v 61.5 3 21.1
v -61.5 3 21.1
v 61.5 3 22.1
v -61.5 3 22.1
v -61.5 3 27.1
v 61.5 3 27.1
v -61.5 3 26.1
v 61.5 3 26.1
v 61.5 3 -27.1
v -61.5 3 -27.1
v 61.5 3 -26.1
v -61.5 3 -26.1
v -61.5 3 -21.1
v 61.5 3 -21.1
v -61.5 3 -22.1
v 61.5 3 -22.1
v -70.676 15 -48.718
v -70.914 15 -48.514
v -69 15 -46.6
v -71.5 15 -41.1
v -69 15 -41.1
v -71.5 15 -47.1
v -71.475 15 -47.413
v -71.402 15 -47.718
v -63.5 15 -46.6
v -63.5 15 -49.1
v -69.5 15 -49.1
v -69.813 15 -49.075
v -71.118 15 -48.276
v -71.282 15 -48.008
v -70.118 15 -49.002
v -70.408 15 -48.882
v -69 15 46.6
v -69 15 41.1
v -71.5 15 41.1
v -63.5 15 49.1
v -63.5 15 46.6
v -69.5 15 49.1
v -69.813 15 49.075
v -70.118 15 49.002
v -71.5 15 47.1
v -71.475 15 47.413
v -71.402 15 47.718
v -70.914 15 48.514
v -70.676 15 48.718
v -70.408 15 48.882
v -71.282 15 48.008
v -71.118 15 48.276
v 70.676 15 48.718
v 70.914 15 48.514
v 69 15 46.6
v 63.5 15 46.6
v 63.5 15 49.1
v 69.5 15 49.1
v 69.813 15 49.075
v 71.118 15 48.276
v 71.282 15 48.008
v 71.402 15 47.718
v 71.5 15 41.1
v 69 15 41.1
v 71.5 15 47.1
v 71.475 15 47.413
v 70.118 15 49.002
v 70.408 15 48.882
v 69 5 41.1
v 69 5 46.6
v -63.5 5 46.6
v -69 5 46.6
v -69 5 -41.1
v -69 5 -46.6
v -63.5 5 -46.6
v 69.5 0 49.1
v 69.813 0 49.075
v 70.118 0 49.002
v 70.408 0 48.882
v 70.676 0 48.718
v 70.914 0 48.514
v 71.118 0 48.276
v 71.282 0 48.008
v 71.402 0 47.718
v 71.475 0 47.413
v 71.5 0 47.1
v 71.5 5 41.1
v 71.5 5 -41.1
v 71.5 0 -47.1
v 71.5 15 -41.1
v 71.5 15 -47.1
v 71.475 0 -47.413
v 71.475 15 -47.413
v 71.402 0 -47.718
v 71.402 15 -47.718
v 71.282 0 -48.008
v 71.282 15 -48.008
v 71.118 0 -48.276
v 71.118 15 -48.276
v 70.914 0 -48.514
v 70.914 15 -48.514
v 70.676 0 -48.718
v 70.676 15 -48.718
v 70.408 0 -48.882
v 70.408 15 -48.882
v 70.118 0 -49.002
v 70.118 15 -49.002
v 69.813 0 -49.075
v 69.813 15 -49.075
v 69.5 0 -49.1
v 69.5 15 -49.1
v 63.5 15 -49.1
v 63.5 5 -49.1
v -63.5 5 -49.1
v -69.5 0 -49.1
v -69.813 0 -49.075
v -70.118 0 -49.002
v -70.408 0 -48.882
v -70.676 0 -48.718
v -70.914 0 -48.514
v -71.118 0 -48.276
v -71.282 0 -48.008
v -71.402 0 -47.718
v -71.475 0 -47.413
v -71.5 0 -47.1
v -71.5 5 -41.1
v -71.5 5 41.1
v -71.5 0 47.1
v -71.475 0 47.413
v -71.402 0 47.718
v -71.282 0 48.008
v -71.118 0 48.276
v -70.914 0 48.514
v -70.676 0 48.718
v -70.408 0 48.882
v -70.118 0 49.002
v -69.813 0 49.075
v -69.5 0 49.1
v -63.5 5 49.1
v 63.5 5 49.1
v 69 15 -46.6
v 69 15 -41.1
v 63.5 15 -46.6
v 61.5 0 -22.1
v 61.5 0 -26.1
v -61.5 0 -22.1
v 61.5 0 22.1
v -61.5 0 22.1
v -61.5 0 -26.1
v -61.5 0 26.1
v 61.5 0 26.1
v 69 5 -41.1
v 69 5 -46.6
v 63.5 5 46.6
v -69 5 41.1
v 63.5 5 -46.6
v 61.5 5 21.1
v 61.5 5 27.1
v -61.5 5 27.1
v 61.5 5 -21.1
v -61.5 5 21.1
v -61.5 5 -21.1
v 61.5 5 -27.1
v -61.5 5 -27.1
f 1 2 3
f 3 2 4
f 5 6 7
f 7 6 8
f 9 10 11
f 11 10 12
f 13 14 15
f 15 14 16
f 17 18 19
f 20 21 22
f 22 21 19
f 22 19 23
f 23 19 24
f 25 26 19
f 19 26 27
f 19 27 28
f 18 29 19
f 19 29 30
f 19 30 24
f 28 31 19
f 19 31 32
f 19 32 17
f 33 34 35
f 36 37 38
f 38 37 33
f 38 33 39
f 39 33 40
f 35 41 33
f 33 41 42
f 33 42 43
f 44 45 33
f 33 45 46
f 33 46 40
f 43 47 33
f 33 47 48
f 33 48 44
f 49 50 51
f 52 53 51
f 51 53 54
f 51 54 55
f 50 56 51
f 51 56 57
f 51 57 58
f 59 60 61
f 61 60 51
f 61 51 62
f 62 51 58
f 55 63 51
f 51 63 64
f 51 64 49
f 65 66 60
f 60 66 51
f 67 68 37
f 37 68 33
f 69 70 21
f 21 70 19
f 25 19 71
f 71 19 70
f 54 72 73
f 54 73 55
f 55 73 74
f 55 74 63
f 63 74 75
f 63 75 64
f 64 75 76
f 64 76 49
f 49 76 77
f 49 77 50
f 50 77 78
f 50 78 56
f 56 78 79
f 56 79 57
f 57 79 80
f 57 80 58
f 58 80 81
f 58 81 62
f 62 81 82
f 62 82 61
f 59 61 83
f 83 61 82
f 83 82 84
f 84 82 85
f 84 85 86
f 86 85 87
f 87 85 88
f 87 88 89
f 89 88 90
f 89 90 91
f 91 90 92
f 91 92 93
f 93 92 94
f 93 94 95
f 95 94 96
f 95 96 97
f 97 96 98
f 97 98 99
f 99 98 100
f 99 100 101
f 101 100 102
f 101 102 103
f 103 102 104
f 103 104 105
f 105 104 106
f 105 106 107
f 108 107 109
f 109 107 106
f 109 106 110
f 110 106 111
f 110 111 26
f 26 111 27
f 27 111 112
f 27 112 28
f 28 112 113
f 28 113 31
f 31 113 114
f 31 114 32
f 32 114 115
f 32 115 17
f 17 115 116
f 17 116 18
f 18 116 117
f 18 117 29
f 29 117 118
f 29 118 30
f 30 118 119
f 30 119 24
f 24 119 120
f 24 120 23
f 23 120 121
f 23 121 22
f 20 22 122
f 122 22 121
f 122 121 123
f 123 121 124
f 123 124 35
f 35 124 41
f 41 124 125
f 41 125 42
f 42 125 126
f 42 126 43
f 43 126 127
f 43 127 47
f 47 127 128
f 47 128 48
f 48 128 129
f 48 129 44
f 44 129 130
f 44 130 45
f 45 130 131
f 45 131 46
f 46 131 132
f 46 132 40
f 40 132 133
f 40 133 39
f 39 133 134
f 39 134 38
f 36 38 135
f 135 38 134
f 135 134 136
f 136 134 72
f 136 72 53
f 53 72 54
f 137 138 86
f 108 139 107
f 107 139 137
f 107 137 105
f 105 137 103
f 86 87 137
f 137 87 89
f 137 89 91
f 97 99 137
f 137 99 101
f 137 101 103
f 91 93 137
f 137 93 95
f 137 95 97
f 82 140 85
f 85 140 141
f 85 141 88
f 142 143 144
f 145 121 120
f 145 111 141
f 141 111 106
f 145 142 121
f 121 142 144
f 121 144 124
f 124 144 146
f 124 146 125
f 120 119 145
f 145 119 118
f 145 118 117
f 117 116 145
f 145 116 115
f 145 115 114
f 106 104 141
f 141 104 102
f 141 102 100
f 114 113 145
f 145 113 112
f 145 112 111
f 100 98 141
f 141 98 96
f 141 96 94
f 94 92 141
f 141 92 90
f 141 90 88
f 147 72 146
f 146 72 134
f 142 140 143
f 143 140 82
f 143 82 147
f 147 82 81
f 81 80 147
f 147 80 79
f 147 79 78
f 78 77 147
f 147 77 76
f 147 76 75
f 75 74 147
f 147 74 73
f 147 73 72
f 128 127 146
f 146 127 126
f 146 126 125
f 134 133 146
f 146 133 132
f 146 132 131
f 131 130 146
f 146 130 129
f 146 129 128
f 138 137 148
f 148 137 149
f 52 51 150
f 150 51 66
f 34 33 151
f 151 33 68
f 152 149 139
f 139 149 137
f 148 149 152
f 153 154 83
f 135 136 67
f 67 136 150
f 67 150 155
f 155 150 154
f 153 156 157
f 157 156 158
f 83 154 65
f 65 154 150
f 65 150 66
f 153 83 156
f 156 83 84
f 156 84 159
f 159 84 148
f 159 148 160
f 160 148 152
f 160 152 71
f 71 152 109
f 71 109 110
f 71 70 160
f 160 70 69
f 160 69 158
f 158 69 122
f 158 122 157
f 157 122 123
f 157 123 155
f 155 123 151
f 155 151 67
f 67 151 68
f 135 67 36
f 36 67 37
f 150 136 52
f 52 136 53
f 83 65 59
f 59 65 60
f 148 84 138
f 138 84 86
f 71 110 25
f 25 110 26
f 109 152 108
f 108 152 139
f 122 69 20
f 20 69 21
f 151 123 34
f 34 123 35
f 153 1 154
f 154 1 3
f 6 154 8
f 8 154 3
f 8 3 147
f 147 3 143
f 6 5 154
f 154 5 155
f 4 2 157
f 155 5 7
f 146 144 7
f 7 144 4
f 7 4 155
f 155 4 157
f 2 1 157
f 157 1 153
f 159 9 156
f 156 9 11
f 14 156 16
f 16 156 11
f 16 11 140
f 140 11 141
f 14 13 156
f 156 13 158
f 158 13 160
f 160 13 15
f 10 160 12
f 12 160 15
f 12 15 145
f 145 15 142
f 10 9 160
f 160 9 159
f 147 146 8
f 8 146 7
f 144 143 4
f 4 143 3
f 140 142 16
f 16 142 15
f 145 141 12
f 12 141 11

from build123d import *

# Parameters (mm, degrees)
BOSS_EXTRUDE1_DEPTH = 15
SKETCH2_W           = 138
SKETCH2_H           = 93.2
CUT_EXTRUDE1_DEPTH  = 10
SKETCH3_W           = 2.5
SKETCH3_H           = 82.2
SKETCH3_W_2         = 127
SKETCH3_H_2         = 2.5
CUT_EXTRUDE2_DEPTH  = 10
SKETCH7_W           = 123
SKETCH7_H           = 6
CUT_EXTRUDE6_DEPTH  = 2
SKETCH8_W           = 123
SKETCH8_H           = 4
CUT_EXTRUDE7_DEPTH  = 3


with BuildPart() as part:
    # Sketch1 → Boss-Extrude1 (new body)
    with BuildSketch(Plane(origin=(0, 0, 0), x_dir=(1, 0, 0), z_dir=(0, 1, 0))):
        with BuildLine():
            Line((-69.5, -49.1), (69.5, -49.1))
            ThreePointArc((69.5, -49.1), (70.914213562, -48.514213562), (71.5, -47.1))
            Line((71.5, -47.1), (71.5, 47.1))
            ThreePointArc((71.5, 47.1), (70.914213562, 48.514213562), (69.5, 49.1))
            Line((69.5, 49.1), (-69.5, 49.1))
            ThreePointArc((-69.5, 49.1), (-70.914213562, 48.514213562), (-71.5, 47.1))
            Line((-71.5, 47.1), (-71.5, -47.1))
            ThreePointArc((-71.5, -47.1), (-70.914213562, -48.514213562), (-69.5, -49.1))
        make_face()
    extrude(amount=BOSS_EXTRUDE1_DEPTH)

    # Sketch2 → Cut-Extrude1 (cut)
    with BuildSketch(Plane(origin=(0, 15, 0), x_dir=(1, 0, 0), z_dir=(0, 1, 0))):
        Rectangle(SKETCH2_W, SKETCH2_H)
    extrude(amount=-CUT_EXTRUDE1_DEPTH, mode=Mode.SUBTRACT)

    # Sketch3 → Cut-Extrude2 (cut)
    with BuildSketch(Plane(origin=(0, 15, 0), x_dir=(1, 0, 0), z_dir=(0, 1, 0))):
        with Locations((-70.25, 0)):
            Rectangle(SKETCH3_W, SKETCH3_H)
        with Locations((0, 47.85)):
            Rectangle(SKETCH3_W_2, SKETCH3_H_2)
        with Locations((70.25, 0)):
            Rectangle(SKETCH3_W, SKETCH3_H)
        with Locations((0, -47.85)):
            Rectangle(SKETCH3_W_2, SKETCH3_H_2)
    extrude(amount=-CUT_EXTRUDE2_DEPTH, mode=Mode.SUBTRACT)

    # Sketch7 → Cut-Extrude6 (cut)
    with BuildSketch(Plane(origin=(0, 5, 0), x_dir=(1, 0, 0), z_dir=(0, 1, 0))):
        with Locations((0, 24.1)):
            Rectangle(SKETCH7_W, SKETCH7_H)
        with Locations((0, -24.1)):
            Rectangle(SKETCH7_W, SKETCH7_H)
    extrude(amount=-CUT_EXTRUDE6_DEPTH, mode=Mode.SUBTRACT)

    # Sketch8 → Cut-Extrude7 (cut)
    with BuildSketch(Plane(origin=(0, 3, 0), x_dir=(1, 0, 0), z_dir=(0, 1, 0))):
        with Locations((0, 24.1)):
            Rectangle(SKETCH8_W, SKETCH8_H)
        with Locations((0, -24.1)):
            Rectangle(SKETCH8_W, SKETCH8_H)
    extrude(amount=-CUT_EXTRUDE7_DEPTH, mode=Mode.SUBTRACT)


solid = part.part
